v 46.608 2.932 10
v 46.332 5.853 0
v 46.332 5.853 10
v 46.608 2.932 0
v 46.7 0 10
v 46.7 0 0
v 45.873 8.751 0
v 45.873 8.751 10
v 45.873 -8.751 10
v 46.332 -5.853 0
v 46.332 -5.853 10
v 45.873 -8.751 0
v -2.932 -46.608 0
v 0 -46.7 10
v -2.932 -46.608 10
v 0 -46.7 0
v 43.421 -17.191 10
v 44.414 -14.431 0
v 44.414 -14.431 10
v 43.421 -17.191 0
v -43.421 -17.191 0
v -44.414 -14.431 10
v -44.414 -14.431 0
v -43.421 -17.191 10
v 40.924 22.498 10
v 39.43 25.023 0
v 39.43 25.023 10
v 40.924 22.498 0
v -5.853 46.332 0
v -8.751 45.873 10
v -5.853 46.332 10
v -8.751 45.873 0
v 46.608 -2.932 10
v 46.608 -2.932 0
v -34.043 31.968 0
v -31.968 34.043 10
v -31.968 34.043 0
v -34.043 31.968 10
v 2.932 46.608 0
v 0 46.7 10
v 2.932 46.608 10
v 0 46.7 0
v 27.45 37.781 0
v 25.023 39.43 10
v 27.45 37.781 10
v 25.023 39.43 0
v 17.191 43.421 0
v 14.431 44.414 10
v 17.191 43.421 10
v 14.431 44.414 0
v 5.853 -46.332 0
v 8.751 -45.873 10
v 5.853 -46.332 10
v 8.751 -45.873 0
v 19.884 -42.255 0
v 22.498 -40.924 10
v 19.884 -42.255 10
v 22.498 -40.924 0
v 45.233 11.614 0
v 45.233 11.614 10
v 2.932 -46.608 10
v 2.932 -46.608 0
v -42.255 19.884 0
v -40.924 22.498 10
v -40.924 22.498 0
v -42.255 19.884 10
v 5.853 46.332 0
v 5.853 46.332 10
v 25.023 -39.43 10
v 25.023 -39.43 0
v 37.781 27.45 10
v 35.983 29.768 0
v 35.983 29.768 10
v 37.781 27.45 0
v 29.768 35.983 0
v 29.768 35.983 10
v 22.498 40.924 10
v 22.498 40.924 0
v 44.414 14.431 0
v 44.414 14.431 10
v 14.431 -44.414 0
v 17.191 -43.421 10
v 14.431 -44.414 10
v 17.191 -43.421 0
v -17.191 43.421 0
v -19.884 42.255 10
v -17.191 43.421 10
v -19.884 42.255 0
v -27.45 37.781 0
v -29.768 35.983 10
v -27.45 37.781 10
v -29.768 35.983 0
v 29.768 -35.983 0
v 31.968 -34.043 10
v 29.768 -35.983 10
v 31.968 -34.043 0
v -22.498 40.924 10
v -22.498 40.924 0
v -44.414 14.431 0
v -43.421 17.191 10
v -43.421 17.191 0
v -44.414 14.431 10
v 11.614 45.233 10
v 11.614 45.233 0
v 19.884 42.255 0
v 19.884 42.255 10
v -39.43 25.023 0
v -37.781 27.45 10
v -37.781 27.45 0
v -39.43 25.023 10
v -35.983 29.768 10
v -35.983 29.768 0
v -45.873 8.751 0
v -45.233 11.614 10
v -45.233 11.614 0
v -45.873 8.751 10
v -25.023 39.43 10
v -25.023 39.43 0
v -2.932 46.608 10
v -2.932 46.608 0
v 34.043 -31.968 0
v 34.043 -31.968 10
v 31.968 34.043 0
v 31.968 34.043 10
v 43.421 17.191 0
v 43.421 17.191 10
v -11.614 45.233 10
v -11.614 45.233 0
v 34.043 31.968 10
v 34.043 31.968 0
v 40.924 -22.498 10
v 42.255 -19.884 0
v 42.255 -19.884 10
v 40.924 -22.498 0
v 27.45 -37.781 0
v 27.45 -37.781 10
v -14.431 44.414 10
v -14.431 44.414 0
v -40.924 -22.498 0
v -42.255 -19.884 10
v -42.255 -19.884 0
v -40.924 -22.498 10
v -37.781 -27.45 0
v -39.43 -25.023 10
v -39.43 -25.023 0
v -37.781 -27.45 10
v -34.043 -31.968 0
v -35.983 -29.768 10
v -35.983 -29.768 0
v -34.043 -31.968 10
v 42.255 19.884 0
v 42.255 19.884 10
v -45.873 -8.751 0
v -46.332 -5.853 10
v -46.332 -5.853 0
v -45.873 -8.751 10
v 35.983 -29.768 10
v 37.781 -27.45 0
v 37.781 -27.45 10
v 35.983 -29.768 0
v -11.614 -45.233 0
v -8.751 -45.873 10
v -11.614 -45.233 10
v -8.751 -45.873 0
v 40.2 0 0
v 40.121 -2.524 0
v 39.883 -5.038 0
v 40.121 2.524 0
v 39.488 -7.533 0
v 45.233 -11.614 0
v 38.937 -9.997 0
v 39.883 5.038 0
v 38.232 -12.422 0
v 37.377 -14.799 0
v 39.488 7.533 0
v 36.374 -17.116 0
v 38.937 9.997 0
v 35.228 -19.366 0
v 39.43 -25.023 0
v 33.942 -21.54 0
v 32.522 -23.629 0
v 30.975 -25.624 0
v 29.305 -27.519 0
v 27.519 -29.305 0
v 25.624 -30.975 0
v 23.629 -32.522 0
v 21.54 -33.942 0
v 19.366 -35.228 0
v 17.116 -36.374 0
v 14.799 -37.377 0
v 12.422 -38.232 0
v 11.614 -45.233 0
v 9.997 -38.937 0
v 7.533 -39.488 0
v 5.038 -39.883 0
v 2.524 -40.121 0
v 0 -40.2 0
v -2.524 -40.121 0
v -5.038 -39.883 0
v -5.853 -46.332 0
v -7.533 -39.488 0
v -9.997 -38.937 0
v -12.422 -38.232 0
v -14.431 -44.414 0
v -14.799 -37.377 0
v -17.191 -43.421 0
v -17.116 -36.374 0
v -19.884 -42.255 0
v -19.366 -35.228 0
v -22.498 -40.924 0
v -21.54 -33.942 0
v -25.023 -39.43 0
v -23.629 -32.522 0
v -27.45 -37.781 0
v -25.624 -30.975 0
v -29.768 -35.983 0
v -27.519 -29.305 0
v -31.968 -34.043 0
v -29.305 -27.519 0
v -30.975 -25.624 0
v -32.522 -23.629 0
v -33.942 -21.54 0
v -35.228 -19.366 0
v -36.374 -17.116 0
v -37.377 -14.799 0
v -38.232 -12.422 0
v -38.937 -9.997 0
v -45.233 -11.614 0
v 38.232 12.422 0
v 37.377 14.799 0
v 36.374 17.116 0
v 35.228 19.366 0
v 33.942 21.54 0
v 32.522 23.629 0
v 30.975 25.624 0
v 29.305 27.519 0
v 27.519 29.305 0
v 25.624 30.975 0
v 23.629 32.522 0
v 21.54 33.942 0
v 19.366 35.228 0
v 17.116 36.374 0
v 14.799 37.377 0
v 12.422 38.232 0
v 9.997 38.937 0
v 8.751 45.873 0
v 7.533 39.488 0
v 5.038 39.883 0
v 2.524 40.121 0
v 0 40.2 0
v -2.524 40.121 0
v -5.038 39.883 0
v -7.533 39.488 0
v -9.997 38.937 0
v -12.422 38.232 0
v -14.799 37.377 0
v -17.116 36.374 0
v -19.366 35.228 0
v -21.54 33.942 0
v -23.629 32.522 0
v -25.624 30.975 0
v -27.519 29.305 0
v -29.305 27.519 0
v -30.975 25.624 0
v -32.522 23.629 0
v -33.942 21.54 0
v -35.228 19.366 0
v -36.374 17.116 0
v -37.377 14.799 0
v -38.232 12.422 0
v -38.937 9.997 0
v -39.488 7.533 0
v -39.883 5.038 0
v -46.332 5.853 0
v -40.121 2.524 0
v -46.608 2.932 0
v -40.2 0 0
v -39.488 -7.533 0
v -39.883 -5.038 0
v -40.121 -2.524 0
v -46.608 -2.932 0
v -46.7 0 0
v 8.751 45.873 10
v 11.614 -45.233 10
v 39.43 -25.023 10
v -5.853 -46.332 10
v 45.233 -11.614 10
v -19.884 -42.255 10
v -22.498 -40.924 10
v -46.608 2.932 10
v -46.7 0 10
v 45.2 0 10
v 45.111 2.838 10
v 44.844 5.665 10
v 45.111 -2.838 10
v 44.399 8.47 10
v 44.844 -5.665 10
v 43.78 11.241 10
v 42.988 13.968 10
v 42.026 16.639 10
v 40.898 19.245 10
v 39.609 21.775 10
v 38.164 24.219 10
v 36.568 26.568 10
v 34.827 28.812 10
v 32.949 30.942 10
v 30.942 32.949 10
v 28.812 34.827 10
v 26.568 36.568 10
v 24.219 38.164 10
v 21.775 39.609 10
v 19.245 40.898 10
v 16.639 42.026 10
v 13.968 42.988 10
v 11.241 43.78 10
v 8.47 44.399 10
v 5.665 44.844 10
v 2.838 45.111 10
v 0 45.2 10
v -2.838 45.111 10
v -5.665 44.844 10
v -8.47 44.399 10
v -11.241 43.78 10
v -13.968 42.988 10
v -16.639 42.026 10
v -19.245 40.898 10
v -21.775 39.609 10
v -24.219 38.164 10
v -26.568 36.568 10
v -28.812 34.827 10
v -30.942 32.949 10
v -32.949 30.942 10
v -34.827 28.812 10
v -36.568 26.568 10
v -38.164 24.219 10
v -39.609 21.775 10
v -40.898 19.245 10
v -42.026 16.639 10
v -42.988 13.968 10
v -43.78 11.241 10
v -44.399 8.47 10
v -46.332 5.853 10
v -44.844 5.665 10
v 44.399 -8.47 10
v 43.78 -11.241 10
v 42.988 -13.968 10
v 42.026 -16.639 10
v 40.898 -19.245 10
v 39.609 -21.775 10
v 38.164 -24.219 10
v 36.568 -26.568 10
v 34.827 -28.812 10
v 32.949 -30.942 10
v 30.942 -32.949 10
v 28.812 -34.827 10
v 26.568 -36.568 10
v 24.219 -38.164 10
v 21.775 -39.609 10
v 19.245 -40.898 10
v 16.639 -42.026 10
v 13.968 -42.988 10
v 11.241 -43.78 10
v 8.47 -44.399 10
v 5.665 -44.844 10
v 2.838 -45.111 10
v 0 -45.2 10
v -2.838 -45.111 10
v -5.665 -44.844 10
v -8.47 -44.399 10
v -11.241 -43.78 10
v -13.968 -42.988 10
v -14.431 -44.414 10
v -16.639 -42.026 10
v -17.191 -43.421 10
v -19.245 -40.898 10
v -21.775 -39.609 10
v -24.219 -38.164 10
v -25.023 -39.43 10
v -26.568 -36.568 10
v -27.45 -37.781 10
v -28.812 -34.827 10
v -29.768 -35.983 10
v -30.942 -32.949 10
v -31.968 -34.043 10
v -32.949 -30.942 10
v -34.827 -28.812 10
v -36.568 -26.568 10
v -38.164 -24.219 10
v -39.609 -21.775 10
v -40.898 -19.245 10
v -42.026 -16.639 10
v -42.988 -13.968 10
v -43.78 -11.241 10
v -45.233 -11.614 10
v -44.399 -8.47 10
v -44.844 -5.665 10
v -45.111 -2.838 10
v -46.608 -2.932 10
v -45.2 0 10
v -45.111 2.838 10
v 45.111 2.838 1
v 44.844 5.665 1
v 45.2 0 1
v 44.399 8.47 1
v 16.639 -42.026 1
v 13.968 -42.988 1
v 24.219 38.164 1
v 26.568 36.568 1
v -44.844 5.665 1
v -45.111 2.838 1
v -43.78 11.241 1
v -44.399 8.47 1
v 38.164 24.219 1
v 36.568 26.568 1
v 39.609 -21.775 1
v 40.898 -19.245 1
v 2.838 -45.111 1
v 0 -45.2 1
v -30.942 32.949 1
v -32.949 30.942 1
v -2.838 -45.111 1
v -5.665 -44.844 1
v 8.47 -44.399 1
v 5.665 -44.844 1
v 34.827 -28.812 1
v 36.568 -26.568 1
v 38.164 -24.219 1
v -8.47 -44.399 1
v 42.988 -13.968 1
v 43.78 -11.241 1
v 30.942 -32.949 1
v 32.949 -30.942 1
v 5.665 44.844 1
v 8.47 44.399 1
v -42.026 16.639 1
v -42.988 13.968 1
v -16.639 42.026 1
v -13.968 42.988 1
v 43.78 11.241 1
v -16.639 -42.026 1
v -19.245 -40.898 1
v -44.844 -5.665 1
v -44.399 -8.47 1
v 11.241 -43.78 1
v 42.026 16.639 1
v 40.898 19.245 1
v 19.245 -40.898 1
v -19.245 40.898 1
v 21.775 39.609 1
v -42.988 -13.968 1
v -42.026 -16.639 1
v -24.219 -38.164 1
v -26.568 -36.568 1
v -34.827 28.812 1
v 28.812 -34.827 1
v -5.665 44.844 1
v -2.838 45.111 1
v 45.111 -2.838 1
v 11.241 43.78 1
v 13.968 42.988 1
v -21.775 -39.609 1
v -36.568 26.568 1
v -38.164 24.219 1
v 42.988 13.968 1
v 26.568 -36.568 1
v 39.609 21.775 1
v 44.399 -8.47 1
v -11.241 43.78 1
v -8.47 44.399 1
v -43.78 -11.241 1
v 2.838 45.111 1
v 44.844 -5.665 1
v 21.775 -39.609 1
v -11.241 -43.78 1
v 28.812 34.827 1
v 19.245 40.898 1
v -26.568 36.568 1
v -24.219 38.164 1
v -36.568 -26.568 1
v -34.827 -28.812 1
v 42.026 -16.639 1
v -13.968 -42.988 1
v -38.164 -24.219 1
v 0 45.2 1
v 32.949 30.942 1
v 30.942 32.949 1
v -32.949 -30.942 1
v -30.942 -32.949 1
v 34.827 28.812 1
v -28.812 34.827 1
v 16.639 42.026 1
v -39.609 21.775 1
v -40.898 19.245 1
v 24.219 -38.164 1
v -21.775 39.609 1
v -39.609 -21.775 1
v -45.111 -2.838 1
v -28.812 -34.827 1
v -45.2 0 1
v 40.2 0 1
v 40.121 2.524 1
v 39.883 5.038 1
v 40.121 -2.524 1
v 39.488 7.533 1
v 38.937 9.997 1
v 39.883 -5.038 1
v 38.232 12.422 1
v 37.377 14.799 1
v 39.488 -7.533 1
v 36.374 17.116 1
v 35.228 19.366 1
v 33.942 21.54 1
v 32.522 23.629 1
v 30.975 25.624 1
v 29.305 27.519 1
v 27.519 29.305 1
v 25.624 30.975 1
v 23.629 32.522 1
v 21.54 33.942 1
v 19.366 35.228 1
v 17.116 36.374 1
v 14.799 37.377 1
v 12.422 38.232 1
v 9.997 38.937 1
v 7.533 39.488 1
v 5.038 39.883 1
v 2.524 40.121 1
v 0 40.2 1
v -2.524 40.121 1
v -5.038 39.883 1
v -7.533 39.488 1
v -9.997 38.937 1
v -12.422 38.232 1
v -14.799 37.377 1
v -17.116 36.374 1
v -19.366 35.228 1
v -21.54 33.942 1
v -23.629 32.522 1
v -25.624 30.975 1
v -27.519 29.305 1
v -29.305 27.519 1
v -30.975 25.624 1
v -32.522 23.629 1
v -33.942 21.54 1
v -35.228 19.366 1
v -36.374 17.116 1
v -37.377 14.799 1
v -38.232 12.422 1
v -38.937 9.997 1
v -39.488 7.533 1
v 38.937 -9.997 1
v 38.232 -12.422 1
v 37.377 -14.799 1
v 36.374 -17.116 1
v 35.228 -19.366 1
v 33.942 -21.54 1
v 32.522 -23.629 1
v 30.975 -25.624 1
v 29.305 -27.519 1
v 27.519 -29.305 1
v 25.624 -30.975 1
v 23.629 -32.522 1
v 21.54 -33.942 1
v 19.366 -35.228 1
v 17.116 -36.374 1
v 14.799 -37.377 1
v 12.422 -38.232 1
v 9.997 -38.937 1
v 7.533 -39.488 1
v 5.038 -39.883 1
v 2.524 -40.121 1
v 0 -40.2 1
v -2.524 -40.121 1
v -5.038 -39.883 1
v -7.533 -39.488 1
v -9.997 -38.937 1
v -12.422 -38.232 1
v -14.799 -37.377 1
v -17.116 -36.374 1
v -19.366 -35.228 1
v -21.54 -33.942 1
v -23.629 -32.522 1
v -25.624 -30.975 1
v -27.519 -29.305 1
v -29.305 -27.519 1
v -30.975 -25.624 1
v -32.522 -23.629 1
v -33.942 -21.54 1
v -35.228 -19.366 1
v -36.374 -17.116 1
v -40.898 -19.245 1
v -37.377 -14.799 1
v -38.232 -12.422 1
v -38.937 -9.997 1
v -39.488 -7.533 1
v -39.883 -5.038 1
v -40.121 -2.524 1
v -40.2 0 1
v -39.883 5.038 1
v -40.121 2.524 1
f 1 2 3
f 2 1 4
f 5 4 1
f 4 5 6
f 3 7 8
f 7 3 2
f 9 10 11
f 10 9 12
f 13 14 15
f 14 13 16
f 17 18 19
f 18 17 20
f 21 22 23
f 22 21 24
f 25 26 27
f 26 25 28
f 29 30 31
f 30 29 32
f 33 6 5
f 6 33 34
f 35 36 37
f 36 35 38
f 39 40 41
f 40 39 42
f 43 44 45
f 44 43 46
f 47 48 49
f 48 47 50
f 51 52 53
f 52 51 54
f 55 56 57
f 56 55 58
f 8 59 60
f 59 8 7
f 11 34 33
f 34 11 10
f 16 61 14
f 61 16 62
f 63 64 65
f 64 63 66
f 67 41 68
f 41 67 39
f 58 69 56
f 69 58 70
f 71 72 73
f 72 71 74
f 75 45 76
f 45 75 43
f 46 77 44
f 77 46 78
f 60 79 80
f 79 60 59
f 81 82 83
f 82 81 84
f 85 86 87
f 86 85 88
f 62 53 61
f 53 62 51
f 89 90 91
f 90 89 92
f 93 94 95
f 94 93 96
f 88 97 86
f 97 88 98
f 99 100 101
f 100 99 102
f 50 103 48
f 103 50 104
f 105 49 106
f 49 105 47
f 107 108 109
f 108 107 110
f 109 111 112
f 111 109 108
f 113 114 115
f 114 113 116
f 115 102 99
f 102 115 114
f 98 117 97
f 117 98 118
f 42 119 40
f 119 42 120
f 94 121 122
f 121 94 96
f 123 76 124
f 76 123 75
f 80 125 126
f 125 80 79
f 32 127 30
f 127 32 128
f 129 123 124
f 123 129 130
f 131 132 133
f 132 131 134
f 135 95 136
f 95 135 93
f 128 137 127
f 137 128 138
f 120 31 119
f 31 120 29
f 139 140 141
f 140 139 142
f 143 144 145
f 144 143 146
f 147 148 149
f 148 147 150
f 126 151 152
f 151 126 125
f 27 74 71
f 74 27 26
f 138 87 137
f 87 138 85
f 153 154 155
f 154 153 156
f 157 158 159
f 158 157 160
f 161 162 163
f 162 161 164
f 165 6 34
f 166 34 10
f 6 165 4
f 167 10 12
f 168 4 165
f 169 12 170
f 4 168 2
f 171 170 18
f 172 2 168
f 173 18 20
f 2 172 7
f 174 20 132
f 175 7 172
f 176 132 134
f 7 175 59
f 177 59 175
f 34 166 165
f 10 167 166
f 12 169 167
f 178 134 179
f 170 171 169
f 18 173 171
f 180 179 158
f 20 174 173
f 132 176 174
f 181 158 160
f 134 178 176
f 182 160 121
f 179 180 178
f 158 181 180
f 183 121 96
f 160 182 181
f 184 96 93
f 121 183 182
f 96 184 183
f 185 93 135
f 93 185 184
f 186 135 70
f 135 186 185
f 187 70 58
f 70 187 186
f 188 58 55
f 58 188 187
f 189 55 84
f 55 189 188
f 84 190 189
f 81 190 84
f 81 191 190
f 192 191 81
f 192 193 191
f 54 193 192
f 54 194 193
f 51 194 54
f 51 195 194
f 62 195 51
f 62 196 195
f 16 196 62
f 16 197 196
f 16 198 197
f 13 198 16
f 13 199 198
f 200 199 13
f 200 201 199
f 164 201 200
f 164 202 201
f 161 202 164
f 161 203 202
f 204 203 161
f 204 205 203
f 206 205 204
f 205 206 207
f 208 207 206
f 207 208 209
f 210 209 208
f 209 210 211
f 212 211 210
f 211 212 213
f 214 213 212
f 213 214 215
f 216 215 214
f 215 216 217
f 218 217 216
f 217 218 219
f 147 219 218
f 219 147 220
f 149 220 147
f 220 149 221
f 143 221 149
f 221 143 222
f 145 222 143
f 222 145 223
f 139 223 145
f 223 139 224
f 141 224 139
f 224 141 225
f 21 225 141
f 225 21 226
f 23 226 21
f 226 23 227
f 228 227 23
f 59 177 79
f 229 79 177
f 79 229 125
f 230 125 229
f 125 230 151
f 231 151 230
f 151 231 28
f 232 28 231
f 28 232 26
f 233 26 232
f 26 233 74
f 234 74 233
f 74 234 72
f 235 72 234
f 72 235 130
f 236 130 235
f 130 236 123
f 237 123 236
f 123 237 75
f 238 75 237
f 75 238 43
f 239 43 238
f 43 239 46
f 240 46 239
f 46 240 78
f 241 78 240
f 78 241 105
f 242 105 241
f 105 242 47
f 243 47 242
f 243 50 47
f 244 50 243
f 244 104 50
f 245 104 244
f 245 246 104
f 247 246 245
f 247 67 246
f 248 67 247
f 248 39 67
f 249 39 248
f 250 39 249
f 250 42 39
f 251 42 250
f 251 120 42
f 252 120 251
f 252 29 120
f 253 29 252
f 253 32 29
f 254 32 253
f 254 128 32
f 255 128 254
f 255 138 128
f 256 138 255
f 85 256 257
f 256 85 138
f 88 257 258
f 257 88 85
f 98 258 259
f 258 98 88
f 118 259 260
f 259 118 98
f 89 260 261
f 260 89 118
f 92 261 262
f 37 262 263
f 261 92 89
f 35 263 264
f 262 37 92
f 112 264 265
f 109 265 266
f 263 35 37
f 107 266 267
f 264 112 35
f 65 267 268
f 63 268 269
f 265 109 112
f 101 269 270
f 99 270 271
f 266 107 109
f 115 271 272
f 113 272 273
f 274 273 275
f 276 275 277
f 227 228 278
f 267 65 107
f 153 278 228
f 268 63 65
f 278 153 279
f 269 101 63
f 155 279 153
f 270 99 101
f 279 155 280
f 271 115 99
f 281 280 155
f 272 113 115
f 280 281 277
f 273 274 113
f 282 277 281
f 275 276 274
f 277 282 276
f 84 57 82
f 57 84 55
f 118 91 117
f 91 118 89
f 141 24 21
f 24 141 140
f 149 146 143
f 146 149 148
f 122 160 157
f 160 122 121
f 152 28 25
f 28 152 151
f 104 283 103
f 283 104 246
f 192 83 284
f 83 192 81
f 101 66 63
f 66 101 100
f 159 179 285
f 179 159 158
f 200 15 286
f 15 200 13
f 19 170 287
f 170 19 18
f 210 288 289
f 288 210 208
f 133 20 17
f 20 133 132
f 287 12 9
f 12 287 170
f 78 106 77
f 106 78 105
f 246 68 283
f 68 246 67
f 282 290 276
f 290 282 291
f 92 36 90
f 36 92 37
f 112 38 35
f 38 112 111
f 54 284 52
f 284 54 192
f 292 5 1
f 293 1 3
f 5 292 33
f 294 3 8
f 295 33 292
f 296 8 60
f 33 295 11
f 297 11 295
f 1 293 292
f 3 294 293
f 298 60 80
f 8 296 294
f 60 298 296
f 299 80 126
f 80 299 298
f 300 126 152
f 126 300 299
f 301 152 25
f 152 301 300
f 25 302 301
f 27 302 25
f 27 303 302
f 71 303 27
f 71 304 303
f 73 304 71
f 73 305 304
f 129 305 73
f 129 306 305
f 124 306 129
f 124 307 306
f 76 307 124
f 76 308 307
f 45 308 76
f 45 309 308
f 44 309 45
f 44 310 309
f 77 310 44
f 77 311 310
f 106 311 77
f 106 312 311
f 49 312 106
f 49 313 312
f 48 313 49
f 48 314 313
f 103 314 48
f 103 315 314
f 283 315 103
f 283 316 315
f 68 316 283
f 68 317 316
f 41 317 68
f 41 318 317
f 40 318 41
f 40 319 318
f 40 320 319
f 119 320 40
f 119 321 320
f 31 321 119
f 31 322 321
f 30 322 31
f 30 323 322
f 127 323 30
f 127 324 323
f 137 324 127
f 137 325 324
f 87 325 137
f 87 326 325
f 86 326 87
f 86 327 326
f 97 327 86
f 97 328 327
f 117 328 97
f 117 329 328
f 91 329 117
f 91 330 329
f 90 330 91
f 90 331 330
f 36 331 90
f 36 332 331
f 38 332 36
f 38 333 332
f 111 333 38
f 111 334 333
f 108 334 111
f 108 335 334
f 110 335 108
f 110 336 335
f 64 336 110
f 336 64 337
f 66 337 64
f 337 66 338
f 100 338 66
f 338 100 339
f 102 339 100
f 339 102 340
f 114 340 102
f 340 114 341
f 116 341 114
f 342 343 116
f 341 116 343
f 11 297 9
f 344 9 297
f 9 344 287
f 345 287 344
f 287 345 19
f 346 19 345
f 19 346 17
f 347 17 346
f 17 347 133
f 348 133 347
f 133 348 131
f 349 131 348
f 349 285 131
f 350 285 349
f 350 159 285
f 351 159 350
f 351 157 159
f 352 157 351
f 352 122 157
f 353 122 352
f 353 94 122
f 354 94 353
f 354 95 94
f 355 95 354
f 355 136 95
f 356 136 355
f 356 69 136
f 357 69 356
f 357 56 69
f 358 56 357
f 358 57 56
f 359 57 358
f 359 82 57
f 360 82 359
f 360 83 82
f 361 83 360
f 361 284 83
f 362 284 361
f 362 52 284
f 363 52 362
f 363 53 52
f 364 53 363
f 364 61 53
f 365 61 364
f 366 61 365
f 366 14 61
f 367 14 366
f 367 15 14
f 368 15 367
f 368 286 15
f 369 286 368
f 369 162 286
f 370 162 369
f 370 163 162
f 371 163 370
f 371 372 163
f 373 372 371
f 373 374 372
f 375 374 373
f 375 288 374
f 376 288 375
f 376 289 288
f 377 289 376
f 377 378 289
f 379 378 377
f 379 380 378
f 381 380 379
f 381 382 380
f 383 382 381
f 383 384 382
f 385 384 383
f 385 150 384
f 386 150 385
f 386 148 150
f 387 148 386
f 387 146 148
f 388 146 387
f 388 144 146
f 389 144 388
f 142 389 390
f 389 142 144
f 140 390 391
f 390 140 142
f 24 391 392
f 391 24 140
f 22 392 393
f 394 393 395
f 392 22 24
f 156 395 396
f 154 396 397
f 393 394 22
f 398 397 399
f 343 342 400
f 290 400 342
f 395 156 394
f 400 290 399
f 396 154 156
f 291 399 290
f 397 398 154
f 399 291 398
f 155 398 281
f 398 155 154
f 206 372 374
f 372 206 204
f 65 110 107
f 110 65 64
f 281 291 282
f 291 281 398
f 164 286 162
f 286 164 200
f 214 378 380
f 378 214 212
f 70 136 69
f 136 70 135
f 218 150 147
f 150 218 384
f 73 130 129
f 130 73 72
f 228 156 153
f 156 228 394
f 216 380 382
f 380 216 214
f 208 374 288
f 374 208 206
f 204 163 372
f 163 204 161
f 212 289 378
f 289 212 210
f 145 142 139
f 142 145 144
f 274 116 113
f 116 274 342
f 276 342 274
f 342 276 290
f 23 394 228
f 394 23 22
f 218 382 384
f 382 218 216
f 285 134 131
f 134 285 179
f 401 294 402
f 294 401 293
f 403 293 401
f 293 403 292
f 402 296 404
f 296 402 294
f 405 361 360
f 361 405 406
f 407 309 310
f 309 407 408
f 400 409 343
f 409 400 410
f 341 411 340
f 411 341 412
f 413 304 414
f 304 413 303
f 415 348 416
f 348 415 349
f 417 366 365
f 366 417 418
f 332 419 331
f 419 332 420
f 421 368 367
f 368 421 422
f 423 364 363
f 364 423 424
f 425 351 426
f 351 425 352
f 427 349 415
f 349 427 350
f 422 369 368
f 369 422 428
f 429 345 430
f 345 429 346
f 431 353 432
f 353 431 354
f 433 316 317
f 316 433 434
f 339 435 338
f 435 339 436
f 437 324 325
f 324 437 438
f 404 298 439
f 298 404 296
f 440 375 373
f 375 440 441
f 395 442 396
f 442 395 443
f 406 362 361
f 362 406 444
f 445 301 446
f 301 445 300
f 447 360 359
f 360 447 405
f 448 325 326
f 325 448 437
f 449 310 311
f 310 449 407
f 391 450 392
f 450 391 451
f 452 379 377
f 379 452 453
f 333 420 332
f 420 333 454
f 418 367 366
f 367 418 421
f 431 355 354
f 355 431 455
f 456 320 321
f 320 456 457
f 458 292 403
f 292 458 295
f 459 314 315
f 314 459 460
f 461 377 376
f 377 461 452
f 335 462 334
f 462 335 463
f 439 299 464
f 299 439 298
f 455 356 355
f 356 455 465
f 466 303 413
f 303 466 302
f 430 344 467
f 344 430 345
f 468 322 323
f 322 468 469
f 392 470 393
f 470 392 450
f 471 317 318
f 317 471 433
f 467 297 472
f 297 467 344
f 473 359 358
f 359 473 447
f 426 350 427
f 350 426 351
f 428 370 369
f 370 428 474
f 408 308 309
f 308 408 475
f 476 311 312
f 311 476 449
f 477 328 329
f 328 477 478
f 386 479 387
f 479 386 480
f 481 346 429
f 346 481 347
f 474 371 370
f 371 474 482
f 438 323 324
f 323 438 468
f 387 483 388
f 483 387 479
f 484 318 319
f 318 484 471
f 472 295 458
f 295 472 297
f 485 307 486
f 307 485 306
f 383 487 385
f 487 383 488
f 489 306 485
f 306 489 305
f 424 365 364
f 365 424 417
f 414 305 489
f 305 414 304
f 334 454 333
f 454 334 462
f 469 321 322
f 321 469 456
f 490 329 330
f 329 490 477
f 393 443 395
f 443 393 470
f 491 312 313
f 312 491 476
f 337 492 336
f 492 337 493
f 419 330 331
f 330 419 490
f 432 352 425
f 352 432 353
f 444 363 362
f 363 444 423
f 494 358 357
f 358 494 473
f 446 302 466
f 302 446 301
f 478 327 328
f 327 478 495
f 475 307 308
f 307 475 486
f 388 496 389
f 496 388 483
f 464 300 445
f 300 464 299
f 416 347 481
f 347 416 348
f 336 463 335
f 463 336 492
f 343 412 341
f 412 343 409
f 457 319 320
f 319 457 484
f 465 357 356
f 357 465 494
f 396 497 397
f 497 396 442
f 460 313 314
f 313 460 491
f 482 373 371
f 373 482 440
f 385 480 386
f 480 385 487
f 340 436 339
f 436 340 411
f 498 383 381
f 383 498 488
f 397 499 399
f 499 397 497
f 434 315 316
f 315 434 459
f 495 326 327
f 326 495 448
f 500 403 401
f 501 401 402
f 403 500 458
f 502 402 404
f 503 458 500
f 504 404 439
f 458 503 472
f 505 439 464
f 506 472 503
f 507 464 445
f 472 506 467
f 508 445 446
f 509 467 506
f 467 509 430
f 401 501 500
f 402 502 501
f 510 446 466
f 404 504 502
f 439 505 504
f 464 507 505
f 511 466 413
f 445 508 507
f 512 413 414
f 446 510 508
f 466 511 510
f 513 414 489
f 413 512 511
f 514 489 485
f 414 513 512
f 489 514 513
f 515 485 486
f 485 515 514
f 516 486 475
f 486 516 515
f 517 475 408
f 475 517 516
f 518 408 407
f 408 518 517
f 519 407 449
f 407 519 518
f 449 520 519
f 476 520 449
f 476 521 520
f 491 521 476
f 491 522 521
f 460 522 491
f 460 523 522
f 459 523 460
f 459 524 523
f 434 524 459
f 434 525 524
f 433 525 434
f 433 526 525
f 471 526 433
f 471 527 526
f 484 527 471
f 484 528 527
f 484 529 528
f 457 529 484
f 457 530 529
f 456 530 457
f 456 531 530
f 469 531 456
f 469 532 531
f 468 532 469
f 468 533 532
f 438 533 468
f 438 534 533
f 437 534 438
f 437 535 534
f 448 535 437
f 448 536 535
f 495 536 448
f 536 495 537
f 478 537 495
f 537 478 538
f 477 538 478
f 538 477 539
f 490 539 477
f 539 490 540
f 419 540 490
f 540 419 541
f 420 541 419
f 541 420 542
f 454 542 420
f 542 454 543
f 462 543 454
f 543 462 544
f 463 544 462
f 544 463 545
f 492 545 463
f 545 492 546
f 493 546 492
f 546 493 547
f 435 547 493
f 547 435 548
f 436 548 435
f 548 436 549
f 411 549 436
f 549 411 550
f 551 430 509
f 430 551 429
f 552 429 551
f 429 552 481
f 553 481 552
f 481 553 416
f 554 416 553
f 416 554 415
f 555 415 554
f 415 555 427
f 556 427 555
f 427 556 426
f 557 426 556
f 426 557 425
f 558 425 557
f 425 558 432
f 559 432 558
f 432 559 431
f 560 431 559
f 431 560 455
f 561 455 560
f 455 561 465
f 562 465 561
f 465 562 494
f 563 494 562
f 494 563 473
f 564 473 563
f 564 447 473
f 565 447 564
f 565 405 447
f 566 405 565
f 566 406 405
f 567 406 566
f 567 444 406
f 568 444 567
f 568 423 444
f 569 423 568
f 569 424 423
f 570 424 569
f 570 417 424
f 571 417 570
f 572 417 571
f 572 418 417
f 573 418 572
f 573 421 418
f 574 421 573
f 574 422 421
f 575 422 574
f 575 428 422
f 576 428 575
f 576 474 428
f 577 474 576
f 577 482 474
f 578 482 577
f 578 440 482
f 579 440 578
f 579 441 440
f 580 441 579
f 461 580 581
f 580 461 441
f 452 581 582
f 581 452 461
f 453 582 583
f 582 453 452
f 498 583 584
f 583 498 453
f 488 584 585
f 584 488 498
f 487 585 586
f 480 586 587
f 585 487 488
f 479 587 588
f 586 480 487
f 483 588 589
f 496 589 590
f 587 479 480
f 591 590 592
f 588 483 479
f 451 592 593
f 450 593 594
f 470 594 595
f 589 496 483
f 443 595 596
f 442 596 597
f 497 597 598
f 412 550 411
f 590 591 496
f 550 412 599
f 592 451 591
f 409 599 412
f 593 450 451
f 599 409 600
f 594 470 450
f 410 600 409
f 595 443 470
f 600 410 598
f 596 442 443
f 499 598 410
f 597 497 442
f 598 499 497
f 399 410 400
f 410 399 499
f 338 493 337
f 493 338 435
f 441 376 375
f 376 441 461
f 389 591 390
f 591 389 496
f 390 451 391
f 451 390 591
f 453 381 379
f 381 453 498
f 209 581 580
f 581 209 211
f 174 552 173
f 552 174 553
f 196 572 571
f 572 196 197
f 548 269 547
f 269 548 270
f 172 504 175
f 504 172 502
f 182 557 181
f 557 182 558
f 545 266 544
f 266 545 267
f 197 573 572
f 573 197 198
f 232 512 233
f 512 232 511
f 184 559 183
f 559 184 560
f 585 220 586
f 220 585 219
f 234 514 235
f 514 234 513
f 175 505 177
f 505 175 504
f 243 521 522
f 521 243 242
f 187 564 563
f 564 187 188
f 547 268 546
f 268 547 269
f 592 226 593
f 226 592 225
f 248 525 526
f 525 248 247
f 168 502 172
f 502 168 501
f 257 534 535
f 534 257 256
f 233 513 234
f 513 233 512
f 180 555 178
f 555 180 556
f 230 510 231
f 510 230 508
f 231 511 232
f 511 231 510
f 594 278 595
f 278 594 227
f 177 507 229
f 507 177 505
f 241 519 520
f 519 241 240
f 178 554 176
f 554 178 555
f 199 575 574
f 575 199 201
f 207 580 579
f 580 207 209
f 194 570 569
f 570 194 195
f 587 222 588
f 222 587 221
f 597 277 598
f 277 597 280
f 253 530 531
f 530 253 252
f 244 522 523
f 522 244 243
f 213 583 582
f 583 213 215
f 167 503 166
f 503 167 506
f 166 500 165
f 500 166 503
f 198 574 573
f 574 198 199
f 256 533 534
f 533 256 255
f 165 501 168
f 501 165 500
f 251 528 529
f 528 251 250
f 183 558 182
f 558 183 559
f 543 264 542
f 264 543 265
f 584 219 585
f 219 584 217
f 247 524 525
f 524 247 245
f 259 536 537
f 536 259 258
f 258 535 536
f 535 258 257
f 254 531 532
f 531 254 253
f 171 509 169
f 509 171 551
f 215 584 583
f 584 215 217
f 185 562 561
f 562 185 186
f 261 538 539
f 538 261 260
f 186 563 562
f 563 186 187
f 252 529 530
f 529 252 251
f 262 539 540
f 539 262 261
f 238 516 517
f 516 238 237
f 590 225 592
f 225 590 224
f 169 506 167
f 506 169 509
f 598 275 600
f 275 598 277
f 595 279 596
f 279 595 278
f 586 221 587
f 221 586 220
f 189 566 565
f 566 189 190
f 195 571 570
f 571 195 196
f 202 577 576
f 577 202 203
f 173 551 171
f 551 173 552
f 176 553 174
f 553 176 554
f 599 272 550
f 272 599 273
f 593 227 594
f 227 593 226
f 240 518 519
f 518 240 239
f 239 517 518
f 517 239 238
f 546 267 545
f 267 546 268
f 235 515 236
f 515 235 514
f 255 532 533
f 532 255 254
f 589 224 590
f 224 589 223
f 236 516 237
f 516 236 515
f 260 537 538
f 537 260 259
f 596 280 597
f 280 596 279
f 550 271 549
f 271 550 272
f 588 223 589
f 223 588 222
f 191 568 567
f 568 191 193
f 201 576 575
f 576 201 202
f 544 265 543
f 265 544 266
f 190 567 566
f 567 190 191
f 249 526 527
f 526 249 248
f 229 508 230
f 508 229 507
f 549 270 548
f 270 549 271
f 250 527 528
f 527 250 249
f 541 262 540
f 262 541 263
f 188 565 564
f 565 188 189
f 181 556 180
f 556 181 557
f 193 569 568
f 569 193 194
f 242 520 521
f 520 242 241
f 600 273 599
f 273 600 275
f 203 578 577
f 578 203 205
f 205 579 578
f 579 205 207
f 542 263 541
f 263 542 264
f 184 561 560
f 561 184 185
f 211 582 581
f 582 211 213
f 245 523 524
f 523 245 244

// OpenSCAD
$fn=100;

tolerance=0.4;
insideDiameter=90 + tolerance;
endStopLength=10;
thickness=3;
endStopDiameter=insideDiameter - 10;

union() {
    difference() {
        cylinder(h=endStopLength, d=insideDiameter+thickness);
        translate ([0,0,+1]) cylinder(h=endStopLength+thickness, d=insideDiameter);
        cylinder(h=thickness, d=endStopDiameter);
    }
    
}
